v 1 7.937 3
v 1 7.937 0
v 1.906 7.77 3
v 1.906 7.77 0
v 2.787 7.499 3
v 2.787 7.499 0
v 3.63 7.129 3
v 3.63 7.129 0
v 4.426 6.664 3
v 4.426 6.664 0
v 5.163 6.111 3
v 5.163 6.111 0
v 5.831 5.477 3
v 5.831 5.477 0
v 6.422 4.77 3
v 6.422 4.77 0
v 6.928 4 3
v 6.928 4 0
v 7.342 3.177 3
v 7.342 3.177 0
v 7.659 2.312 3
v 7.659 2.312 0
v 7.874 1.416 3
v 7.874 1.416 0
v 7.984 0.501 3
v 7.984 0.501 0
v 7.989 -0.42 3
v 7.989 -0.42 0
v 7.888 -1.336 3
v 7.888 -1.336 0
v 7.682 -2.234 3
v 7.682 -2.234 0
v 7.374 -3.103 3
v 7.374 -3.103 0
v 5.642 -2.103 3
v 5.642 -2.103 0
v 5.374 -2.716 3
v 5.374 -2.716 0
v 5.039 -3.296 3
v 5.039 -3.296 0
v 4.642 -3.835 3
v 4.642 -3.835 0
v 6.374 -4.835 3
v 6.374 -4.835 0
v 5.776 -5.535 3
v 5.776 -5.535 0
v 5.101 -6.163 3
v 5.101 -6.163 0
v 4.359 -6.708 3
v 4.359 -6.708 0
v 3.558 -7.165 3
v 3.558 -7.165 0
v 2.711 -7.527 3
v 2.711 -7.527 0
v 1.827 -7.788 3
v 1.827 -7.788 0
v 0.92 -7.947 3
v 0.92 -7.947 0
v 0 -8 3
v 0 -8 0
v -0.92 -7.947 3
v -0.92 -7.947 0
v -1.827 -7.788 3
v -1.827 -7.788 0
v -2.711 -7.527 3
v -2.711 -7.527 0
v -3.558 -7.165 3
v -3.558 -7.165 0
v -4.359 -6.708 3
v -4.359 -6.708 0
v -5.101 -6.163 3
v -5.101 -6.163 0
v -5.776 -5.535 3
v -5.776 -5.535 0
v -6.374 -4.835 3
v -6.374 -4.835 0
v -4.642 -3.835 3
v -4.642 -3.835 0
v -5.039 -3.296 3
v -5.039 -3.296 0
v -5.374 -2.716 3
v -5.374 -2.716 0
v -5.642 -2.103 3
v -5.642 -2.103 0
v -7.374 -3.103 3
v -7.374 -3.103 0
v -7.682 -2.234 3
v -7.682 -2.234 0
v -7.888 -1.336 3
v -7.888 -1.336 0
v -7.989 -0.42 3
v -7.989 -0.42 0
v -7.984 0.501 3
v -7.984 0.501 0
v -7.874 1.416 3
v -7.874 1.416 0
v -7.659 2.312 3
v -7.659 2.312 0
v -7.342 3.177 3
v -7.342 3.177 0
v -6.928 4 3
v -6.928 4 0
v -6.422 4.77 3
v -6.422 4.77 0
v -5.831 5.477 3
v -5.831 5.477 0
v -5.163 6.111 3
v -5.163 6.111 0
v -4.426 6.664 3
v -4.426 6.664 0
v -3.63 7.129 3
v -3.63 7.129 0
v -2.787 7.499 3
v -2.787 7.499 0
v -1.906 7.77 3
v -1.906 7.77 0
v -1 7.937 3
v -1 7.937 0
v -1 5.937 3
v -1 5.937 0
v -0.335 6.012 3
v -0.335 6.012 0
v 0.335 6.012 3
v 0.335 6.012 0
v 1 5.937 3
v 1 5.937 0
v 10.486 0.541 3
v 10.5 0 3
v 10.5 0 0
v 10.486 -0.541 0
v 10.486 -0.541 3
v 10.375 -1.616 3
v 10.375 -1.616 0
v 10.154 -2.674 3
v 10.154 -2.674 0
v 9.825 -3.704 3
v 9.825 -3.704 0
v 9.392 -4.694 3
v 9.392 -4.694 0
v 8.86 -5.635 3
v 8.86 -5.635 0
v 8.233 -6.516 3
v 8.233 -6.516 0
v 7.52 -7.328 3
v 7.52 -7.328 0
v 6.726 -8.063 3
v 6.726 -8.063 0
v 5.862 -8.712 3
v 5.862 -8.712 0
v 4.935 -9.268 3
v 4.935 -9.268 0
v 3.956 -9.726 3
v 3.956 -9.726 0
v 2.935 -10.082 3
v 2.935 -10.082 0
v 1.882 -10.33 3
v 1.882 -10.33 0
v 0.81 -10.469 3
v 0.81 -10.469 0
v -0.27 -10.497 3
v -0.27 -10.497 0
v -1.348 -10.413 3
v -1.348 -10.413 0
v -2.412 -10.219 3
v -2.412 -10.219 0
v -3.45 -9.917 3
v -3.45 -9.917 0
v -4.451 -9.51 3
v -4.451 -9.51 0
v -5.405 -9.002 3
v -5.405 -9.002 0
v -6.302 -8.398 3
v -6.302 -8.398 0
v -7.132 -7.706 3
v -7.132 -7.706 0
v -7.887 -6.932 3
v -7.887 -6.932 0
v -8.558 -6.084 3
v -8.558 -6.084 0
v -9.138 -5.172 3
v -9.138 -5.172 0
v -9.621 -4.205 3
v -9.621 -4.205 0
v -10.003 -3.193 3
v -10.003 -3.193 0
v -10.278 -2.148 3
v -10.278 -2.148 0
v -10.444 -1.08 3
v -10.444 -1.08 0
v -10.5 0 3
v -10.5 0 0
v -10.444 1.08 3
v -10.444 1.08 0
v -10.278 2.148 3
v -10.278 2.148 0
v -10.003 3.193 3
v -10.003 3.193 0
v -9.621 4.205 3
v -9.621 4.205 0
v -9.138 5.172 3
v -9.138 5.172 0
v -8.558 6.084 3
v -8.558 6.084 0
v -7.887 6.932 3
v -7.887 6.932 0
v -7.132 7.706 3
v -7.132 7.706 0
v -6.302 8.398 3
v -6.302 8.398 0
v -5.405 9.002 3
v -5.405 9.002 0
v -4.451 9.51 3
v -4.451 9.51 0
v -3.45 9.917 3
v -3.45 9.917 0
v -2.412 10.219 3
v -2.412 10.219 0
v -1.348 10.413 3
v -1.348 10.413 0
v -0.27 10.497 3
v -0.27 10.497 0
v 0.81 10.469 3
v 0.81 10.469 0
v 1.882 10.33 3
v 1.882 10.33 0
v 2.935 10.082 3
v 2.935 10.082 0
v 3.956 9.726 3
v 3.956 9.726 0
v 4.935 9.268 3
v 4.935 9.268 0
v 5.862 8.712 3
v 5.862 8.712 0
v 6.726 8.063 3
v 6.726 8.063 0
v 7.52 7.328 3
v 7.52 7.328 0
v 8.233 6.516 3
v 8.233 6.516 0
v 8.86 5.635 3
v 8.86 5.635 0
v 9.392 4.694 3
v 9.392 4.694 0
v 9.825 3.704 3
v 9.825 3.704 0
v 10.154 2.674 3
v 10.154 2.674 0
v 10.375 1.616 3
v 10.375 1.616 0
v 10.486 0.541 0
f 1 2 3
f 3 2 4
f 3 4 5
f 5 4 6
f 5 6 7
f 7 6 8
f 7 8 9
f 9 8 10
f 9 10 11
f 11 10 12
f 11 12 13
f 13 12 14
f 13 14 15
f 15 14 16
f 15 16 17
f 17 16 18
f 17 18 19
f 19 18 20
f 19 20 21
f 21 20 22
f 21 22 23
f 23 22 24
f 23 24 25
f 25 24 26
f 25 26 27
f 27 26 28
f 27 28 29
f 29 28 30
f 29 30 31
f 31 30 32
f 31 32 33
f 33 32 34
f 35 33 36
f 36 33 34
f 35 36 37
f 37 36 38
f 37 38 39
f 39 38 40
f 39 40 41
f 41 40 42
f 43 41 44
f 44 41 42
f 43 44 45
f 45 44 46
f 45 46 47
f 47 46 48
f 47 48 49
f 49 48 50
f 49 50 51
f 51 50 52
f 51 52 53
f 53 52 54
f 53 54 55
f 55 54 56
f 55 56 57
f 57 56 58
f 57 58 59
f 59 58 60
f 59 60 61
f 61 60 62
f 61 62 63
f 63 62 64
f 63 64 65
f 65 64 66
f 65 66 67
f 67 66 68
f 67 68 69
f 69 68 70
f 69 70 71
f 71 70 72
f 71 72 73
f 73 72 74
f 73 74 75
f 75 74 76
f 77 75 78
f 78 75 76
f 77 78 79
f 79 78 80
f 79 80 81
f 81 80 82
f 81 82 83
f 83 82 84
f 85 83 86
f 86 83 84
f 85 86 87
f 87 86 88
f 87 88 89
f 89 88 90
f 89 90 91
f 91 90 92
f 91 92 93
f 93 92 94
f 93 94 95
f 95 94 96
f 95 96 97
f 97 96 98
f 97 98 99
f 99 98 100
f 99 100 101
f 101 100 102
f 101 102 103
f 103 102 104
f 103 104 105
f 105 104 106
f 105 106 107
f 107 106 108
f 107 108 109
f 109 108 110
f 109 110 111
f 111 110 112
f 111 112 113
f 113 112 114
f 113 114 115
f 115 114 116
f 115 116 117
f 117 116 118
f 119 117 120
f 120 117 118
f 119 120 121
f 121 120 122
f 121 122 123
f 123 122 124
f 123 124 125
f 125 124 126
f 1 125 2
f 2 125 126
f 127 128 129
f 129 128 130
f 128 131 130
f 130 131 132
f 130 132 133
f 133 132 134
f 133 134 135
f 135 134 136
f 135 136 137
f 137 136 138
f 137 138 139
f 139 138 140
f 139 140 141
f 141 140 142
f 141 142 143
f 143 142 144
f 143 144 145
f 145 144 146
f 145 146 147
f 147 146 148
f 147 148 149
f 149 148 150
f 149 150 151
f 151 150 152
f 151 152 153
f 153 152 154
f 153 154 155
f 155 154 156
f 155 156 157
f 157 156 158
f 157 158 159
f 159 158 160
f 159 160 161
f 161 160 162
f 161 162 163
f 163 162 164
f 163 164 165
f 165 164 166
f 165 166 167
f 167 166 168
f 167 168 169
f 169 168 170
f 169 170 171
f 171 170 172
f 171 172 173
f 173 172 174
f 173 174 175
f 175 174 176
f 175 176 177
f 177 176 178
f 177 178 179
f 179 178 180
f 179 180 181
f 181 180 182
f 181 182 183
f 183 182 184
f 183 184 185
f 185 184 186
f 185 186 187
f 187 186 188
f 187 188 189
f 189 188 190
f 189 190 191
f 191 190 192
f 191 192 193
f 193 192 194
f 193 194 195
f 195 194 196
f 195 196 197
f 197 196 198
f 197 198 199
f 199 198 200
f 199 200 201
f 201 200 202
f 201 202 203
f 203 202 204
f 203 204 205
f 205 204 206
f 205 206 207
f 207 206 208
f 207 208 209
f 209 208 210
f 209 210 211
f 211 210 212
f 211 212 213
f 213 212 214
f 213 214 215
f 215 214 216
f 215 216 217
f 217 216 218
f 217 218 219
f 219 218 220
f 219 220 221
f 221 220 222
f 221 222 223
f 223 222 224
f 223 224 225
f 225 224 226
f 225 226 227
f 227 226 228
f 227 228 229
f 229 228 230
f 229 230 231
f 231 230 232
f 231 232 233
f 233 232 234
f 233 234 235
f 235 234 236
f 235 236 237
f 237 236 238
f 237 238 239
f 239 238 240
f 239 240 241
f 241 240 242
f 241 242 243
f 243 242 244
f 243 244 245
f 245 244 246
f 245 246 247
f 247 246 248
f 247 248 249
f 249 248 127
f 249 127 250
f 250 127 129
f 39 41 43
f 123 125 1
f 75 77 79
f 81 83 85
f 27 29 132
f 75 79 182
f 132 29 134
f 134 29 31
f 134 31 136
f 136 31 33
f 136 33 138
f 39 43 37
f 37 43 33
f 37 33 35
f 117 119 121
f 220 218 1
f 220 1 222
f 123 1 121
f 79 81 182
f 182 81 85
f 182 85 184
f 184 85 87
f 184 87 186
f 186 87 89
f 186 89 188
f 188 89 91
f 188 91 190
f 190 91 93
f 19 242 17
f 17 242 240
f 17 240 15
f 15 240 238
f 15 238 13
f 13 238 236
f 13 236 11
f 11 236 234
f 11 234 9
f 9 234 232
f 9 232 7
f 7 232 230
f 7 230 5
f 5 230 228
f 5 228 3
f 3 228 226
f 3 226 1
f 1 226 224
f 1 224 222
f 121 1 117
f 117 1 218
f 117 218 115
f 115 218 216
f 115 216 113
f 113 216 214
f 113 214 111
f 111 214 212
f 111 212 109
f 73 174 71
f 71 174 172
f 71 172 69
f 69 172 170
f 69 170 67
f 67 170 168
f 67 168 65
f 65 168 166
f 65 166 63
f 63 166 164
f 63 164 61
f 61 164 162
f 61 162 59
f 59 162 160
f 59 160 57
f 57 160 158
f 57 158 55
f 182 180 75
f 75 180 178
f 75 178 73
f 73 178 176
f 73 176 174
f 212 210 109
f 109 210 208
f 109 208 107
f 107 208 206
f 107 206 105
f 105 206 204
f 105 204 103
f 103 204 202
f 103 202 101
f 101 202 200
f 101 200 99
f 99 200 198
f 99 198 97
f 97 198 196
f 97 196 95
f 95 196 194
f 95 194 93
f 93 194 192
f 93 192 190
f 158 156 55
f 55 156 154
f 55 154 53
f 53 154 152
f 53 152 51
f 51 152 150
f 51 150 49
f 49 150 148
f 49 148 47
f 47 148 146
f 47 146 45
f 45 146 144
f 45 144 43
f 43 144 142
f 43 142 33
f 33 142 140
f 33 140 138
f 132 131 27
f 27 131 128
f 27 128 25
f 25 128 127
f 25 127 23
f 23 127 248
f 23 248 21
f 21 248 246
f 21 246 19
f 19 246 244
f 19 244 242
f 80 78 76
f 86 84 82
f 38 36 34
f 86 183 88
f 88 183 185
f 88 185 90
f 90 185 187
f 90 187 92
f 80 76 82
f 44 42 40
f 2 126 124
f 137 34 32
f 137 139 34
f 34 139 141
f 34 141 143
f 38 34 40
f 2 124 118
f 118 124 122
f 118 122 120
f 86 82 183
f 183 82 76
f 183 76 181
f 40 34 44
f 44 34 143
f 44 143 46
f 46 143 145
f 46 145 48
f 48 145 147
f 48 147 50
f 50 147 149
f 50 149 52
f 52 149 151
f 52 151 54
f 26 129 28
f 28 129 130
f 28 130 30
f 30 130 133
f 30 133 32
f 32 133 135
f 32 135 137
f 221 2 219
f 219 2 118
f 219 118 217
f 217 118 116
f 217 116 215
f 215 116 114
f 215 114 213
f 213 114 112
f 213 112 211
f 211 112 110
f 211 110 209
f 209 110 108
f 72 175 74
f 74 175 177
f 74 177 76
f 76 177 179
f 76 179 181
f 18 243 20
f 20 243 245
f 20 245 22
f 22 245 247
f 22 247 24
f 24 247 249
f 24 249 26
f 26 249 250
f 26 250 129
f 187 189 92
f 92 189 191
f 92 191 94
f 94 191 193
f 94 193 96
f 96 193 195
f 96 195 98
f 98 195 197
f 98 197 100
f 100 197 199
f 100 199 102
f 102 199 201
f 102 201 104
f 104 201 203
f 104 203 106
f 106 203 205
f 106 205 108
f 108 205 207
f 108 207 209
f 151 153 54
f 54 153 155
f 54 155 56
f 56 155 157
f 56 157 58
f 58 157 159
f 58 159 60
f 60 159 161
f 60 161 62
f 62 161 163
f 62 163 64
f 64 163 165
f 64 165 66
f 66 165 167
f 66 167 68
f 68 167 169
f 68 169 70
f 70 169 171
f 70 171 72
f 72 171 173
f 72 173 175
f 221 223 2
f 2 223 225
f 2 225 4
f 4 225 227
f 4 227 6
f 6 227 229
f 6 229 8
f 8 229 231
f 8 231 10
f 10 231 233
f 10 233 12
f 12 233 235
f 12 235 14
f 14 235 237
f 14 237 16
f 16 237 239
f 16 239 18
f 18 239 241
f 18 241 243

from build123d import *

# Parameters (mm, degrees)
SKETCH1_R           = 10.5
SKETCH1_R_2         = 8
BOSS_EXTRUDE1_DEPTH = 3


with BuildPart() as part:
    # Sketch1 → Boss-Extrude1 (new body)
    # profile 1 of 4: a face of its own
    with BuildSketch(Plane.XY):
        Circle(SKETCH1_R)
        Circle(SKETCH1_R_2, mode=Mode.SUBTRACT)
    # profile 2 of 4: a face of its own
    with BuildSketch(Plane.XY):
        with BuildLine():
            ThreePointArc((1, 7.937253933), (0, 8), (-1, 7.937253933))
            Line((-1, 7.937253933), (-1, 5.937253933))
            ThreePointArc((-1, 5.937253933), (0, 6.020879028), (1, 5.937253933))
            Line((1, 5.937253933), (1, 7.937253933))
        make_face()
    # profile 3 of 4: a face of its own
    with BuildSketch(Plane.XY):
        with BuildLine():
            ThreePointArc((6.373863542, -4.83465237), (6.92820323, -4), (7.373863542, -3.102601563))
            Line((7.373863542, -3.102601563), (5.641812735, -2.102601563))
            ThreePointArc((5.641812735, -2.102601563), (5.214234191, -3.010439514), (4.641812735, -3.83465237))
            Line((4.641812735, -3.83465237), (6.373863542, -4.83465237))
        make_face()
    # profile 4 of 4: a face of its own
    with BuildSketch(Plane.XY):
        with BuildLine():
            Line((-5.641812735, -2.102601563), (-7.373863542, -3.102601563))
            ThreePointArc((-7.373863542, -3.102601563), (-6.92820323, -4), (-6.373863542, -4.83465237))
            Line((-6.373863542, -4.83465237), (-4.641812735, -3.83465237))
            ThreePointArc((-4.641812735, -3.83465237), (-5.214234191, -3.010439514), (-5.641812735, -2.102601563))
        make_face()
    extrude(amount=BOSS_EXTRUDE1_DEPTH)


solid = part.part
